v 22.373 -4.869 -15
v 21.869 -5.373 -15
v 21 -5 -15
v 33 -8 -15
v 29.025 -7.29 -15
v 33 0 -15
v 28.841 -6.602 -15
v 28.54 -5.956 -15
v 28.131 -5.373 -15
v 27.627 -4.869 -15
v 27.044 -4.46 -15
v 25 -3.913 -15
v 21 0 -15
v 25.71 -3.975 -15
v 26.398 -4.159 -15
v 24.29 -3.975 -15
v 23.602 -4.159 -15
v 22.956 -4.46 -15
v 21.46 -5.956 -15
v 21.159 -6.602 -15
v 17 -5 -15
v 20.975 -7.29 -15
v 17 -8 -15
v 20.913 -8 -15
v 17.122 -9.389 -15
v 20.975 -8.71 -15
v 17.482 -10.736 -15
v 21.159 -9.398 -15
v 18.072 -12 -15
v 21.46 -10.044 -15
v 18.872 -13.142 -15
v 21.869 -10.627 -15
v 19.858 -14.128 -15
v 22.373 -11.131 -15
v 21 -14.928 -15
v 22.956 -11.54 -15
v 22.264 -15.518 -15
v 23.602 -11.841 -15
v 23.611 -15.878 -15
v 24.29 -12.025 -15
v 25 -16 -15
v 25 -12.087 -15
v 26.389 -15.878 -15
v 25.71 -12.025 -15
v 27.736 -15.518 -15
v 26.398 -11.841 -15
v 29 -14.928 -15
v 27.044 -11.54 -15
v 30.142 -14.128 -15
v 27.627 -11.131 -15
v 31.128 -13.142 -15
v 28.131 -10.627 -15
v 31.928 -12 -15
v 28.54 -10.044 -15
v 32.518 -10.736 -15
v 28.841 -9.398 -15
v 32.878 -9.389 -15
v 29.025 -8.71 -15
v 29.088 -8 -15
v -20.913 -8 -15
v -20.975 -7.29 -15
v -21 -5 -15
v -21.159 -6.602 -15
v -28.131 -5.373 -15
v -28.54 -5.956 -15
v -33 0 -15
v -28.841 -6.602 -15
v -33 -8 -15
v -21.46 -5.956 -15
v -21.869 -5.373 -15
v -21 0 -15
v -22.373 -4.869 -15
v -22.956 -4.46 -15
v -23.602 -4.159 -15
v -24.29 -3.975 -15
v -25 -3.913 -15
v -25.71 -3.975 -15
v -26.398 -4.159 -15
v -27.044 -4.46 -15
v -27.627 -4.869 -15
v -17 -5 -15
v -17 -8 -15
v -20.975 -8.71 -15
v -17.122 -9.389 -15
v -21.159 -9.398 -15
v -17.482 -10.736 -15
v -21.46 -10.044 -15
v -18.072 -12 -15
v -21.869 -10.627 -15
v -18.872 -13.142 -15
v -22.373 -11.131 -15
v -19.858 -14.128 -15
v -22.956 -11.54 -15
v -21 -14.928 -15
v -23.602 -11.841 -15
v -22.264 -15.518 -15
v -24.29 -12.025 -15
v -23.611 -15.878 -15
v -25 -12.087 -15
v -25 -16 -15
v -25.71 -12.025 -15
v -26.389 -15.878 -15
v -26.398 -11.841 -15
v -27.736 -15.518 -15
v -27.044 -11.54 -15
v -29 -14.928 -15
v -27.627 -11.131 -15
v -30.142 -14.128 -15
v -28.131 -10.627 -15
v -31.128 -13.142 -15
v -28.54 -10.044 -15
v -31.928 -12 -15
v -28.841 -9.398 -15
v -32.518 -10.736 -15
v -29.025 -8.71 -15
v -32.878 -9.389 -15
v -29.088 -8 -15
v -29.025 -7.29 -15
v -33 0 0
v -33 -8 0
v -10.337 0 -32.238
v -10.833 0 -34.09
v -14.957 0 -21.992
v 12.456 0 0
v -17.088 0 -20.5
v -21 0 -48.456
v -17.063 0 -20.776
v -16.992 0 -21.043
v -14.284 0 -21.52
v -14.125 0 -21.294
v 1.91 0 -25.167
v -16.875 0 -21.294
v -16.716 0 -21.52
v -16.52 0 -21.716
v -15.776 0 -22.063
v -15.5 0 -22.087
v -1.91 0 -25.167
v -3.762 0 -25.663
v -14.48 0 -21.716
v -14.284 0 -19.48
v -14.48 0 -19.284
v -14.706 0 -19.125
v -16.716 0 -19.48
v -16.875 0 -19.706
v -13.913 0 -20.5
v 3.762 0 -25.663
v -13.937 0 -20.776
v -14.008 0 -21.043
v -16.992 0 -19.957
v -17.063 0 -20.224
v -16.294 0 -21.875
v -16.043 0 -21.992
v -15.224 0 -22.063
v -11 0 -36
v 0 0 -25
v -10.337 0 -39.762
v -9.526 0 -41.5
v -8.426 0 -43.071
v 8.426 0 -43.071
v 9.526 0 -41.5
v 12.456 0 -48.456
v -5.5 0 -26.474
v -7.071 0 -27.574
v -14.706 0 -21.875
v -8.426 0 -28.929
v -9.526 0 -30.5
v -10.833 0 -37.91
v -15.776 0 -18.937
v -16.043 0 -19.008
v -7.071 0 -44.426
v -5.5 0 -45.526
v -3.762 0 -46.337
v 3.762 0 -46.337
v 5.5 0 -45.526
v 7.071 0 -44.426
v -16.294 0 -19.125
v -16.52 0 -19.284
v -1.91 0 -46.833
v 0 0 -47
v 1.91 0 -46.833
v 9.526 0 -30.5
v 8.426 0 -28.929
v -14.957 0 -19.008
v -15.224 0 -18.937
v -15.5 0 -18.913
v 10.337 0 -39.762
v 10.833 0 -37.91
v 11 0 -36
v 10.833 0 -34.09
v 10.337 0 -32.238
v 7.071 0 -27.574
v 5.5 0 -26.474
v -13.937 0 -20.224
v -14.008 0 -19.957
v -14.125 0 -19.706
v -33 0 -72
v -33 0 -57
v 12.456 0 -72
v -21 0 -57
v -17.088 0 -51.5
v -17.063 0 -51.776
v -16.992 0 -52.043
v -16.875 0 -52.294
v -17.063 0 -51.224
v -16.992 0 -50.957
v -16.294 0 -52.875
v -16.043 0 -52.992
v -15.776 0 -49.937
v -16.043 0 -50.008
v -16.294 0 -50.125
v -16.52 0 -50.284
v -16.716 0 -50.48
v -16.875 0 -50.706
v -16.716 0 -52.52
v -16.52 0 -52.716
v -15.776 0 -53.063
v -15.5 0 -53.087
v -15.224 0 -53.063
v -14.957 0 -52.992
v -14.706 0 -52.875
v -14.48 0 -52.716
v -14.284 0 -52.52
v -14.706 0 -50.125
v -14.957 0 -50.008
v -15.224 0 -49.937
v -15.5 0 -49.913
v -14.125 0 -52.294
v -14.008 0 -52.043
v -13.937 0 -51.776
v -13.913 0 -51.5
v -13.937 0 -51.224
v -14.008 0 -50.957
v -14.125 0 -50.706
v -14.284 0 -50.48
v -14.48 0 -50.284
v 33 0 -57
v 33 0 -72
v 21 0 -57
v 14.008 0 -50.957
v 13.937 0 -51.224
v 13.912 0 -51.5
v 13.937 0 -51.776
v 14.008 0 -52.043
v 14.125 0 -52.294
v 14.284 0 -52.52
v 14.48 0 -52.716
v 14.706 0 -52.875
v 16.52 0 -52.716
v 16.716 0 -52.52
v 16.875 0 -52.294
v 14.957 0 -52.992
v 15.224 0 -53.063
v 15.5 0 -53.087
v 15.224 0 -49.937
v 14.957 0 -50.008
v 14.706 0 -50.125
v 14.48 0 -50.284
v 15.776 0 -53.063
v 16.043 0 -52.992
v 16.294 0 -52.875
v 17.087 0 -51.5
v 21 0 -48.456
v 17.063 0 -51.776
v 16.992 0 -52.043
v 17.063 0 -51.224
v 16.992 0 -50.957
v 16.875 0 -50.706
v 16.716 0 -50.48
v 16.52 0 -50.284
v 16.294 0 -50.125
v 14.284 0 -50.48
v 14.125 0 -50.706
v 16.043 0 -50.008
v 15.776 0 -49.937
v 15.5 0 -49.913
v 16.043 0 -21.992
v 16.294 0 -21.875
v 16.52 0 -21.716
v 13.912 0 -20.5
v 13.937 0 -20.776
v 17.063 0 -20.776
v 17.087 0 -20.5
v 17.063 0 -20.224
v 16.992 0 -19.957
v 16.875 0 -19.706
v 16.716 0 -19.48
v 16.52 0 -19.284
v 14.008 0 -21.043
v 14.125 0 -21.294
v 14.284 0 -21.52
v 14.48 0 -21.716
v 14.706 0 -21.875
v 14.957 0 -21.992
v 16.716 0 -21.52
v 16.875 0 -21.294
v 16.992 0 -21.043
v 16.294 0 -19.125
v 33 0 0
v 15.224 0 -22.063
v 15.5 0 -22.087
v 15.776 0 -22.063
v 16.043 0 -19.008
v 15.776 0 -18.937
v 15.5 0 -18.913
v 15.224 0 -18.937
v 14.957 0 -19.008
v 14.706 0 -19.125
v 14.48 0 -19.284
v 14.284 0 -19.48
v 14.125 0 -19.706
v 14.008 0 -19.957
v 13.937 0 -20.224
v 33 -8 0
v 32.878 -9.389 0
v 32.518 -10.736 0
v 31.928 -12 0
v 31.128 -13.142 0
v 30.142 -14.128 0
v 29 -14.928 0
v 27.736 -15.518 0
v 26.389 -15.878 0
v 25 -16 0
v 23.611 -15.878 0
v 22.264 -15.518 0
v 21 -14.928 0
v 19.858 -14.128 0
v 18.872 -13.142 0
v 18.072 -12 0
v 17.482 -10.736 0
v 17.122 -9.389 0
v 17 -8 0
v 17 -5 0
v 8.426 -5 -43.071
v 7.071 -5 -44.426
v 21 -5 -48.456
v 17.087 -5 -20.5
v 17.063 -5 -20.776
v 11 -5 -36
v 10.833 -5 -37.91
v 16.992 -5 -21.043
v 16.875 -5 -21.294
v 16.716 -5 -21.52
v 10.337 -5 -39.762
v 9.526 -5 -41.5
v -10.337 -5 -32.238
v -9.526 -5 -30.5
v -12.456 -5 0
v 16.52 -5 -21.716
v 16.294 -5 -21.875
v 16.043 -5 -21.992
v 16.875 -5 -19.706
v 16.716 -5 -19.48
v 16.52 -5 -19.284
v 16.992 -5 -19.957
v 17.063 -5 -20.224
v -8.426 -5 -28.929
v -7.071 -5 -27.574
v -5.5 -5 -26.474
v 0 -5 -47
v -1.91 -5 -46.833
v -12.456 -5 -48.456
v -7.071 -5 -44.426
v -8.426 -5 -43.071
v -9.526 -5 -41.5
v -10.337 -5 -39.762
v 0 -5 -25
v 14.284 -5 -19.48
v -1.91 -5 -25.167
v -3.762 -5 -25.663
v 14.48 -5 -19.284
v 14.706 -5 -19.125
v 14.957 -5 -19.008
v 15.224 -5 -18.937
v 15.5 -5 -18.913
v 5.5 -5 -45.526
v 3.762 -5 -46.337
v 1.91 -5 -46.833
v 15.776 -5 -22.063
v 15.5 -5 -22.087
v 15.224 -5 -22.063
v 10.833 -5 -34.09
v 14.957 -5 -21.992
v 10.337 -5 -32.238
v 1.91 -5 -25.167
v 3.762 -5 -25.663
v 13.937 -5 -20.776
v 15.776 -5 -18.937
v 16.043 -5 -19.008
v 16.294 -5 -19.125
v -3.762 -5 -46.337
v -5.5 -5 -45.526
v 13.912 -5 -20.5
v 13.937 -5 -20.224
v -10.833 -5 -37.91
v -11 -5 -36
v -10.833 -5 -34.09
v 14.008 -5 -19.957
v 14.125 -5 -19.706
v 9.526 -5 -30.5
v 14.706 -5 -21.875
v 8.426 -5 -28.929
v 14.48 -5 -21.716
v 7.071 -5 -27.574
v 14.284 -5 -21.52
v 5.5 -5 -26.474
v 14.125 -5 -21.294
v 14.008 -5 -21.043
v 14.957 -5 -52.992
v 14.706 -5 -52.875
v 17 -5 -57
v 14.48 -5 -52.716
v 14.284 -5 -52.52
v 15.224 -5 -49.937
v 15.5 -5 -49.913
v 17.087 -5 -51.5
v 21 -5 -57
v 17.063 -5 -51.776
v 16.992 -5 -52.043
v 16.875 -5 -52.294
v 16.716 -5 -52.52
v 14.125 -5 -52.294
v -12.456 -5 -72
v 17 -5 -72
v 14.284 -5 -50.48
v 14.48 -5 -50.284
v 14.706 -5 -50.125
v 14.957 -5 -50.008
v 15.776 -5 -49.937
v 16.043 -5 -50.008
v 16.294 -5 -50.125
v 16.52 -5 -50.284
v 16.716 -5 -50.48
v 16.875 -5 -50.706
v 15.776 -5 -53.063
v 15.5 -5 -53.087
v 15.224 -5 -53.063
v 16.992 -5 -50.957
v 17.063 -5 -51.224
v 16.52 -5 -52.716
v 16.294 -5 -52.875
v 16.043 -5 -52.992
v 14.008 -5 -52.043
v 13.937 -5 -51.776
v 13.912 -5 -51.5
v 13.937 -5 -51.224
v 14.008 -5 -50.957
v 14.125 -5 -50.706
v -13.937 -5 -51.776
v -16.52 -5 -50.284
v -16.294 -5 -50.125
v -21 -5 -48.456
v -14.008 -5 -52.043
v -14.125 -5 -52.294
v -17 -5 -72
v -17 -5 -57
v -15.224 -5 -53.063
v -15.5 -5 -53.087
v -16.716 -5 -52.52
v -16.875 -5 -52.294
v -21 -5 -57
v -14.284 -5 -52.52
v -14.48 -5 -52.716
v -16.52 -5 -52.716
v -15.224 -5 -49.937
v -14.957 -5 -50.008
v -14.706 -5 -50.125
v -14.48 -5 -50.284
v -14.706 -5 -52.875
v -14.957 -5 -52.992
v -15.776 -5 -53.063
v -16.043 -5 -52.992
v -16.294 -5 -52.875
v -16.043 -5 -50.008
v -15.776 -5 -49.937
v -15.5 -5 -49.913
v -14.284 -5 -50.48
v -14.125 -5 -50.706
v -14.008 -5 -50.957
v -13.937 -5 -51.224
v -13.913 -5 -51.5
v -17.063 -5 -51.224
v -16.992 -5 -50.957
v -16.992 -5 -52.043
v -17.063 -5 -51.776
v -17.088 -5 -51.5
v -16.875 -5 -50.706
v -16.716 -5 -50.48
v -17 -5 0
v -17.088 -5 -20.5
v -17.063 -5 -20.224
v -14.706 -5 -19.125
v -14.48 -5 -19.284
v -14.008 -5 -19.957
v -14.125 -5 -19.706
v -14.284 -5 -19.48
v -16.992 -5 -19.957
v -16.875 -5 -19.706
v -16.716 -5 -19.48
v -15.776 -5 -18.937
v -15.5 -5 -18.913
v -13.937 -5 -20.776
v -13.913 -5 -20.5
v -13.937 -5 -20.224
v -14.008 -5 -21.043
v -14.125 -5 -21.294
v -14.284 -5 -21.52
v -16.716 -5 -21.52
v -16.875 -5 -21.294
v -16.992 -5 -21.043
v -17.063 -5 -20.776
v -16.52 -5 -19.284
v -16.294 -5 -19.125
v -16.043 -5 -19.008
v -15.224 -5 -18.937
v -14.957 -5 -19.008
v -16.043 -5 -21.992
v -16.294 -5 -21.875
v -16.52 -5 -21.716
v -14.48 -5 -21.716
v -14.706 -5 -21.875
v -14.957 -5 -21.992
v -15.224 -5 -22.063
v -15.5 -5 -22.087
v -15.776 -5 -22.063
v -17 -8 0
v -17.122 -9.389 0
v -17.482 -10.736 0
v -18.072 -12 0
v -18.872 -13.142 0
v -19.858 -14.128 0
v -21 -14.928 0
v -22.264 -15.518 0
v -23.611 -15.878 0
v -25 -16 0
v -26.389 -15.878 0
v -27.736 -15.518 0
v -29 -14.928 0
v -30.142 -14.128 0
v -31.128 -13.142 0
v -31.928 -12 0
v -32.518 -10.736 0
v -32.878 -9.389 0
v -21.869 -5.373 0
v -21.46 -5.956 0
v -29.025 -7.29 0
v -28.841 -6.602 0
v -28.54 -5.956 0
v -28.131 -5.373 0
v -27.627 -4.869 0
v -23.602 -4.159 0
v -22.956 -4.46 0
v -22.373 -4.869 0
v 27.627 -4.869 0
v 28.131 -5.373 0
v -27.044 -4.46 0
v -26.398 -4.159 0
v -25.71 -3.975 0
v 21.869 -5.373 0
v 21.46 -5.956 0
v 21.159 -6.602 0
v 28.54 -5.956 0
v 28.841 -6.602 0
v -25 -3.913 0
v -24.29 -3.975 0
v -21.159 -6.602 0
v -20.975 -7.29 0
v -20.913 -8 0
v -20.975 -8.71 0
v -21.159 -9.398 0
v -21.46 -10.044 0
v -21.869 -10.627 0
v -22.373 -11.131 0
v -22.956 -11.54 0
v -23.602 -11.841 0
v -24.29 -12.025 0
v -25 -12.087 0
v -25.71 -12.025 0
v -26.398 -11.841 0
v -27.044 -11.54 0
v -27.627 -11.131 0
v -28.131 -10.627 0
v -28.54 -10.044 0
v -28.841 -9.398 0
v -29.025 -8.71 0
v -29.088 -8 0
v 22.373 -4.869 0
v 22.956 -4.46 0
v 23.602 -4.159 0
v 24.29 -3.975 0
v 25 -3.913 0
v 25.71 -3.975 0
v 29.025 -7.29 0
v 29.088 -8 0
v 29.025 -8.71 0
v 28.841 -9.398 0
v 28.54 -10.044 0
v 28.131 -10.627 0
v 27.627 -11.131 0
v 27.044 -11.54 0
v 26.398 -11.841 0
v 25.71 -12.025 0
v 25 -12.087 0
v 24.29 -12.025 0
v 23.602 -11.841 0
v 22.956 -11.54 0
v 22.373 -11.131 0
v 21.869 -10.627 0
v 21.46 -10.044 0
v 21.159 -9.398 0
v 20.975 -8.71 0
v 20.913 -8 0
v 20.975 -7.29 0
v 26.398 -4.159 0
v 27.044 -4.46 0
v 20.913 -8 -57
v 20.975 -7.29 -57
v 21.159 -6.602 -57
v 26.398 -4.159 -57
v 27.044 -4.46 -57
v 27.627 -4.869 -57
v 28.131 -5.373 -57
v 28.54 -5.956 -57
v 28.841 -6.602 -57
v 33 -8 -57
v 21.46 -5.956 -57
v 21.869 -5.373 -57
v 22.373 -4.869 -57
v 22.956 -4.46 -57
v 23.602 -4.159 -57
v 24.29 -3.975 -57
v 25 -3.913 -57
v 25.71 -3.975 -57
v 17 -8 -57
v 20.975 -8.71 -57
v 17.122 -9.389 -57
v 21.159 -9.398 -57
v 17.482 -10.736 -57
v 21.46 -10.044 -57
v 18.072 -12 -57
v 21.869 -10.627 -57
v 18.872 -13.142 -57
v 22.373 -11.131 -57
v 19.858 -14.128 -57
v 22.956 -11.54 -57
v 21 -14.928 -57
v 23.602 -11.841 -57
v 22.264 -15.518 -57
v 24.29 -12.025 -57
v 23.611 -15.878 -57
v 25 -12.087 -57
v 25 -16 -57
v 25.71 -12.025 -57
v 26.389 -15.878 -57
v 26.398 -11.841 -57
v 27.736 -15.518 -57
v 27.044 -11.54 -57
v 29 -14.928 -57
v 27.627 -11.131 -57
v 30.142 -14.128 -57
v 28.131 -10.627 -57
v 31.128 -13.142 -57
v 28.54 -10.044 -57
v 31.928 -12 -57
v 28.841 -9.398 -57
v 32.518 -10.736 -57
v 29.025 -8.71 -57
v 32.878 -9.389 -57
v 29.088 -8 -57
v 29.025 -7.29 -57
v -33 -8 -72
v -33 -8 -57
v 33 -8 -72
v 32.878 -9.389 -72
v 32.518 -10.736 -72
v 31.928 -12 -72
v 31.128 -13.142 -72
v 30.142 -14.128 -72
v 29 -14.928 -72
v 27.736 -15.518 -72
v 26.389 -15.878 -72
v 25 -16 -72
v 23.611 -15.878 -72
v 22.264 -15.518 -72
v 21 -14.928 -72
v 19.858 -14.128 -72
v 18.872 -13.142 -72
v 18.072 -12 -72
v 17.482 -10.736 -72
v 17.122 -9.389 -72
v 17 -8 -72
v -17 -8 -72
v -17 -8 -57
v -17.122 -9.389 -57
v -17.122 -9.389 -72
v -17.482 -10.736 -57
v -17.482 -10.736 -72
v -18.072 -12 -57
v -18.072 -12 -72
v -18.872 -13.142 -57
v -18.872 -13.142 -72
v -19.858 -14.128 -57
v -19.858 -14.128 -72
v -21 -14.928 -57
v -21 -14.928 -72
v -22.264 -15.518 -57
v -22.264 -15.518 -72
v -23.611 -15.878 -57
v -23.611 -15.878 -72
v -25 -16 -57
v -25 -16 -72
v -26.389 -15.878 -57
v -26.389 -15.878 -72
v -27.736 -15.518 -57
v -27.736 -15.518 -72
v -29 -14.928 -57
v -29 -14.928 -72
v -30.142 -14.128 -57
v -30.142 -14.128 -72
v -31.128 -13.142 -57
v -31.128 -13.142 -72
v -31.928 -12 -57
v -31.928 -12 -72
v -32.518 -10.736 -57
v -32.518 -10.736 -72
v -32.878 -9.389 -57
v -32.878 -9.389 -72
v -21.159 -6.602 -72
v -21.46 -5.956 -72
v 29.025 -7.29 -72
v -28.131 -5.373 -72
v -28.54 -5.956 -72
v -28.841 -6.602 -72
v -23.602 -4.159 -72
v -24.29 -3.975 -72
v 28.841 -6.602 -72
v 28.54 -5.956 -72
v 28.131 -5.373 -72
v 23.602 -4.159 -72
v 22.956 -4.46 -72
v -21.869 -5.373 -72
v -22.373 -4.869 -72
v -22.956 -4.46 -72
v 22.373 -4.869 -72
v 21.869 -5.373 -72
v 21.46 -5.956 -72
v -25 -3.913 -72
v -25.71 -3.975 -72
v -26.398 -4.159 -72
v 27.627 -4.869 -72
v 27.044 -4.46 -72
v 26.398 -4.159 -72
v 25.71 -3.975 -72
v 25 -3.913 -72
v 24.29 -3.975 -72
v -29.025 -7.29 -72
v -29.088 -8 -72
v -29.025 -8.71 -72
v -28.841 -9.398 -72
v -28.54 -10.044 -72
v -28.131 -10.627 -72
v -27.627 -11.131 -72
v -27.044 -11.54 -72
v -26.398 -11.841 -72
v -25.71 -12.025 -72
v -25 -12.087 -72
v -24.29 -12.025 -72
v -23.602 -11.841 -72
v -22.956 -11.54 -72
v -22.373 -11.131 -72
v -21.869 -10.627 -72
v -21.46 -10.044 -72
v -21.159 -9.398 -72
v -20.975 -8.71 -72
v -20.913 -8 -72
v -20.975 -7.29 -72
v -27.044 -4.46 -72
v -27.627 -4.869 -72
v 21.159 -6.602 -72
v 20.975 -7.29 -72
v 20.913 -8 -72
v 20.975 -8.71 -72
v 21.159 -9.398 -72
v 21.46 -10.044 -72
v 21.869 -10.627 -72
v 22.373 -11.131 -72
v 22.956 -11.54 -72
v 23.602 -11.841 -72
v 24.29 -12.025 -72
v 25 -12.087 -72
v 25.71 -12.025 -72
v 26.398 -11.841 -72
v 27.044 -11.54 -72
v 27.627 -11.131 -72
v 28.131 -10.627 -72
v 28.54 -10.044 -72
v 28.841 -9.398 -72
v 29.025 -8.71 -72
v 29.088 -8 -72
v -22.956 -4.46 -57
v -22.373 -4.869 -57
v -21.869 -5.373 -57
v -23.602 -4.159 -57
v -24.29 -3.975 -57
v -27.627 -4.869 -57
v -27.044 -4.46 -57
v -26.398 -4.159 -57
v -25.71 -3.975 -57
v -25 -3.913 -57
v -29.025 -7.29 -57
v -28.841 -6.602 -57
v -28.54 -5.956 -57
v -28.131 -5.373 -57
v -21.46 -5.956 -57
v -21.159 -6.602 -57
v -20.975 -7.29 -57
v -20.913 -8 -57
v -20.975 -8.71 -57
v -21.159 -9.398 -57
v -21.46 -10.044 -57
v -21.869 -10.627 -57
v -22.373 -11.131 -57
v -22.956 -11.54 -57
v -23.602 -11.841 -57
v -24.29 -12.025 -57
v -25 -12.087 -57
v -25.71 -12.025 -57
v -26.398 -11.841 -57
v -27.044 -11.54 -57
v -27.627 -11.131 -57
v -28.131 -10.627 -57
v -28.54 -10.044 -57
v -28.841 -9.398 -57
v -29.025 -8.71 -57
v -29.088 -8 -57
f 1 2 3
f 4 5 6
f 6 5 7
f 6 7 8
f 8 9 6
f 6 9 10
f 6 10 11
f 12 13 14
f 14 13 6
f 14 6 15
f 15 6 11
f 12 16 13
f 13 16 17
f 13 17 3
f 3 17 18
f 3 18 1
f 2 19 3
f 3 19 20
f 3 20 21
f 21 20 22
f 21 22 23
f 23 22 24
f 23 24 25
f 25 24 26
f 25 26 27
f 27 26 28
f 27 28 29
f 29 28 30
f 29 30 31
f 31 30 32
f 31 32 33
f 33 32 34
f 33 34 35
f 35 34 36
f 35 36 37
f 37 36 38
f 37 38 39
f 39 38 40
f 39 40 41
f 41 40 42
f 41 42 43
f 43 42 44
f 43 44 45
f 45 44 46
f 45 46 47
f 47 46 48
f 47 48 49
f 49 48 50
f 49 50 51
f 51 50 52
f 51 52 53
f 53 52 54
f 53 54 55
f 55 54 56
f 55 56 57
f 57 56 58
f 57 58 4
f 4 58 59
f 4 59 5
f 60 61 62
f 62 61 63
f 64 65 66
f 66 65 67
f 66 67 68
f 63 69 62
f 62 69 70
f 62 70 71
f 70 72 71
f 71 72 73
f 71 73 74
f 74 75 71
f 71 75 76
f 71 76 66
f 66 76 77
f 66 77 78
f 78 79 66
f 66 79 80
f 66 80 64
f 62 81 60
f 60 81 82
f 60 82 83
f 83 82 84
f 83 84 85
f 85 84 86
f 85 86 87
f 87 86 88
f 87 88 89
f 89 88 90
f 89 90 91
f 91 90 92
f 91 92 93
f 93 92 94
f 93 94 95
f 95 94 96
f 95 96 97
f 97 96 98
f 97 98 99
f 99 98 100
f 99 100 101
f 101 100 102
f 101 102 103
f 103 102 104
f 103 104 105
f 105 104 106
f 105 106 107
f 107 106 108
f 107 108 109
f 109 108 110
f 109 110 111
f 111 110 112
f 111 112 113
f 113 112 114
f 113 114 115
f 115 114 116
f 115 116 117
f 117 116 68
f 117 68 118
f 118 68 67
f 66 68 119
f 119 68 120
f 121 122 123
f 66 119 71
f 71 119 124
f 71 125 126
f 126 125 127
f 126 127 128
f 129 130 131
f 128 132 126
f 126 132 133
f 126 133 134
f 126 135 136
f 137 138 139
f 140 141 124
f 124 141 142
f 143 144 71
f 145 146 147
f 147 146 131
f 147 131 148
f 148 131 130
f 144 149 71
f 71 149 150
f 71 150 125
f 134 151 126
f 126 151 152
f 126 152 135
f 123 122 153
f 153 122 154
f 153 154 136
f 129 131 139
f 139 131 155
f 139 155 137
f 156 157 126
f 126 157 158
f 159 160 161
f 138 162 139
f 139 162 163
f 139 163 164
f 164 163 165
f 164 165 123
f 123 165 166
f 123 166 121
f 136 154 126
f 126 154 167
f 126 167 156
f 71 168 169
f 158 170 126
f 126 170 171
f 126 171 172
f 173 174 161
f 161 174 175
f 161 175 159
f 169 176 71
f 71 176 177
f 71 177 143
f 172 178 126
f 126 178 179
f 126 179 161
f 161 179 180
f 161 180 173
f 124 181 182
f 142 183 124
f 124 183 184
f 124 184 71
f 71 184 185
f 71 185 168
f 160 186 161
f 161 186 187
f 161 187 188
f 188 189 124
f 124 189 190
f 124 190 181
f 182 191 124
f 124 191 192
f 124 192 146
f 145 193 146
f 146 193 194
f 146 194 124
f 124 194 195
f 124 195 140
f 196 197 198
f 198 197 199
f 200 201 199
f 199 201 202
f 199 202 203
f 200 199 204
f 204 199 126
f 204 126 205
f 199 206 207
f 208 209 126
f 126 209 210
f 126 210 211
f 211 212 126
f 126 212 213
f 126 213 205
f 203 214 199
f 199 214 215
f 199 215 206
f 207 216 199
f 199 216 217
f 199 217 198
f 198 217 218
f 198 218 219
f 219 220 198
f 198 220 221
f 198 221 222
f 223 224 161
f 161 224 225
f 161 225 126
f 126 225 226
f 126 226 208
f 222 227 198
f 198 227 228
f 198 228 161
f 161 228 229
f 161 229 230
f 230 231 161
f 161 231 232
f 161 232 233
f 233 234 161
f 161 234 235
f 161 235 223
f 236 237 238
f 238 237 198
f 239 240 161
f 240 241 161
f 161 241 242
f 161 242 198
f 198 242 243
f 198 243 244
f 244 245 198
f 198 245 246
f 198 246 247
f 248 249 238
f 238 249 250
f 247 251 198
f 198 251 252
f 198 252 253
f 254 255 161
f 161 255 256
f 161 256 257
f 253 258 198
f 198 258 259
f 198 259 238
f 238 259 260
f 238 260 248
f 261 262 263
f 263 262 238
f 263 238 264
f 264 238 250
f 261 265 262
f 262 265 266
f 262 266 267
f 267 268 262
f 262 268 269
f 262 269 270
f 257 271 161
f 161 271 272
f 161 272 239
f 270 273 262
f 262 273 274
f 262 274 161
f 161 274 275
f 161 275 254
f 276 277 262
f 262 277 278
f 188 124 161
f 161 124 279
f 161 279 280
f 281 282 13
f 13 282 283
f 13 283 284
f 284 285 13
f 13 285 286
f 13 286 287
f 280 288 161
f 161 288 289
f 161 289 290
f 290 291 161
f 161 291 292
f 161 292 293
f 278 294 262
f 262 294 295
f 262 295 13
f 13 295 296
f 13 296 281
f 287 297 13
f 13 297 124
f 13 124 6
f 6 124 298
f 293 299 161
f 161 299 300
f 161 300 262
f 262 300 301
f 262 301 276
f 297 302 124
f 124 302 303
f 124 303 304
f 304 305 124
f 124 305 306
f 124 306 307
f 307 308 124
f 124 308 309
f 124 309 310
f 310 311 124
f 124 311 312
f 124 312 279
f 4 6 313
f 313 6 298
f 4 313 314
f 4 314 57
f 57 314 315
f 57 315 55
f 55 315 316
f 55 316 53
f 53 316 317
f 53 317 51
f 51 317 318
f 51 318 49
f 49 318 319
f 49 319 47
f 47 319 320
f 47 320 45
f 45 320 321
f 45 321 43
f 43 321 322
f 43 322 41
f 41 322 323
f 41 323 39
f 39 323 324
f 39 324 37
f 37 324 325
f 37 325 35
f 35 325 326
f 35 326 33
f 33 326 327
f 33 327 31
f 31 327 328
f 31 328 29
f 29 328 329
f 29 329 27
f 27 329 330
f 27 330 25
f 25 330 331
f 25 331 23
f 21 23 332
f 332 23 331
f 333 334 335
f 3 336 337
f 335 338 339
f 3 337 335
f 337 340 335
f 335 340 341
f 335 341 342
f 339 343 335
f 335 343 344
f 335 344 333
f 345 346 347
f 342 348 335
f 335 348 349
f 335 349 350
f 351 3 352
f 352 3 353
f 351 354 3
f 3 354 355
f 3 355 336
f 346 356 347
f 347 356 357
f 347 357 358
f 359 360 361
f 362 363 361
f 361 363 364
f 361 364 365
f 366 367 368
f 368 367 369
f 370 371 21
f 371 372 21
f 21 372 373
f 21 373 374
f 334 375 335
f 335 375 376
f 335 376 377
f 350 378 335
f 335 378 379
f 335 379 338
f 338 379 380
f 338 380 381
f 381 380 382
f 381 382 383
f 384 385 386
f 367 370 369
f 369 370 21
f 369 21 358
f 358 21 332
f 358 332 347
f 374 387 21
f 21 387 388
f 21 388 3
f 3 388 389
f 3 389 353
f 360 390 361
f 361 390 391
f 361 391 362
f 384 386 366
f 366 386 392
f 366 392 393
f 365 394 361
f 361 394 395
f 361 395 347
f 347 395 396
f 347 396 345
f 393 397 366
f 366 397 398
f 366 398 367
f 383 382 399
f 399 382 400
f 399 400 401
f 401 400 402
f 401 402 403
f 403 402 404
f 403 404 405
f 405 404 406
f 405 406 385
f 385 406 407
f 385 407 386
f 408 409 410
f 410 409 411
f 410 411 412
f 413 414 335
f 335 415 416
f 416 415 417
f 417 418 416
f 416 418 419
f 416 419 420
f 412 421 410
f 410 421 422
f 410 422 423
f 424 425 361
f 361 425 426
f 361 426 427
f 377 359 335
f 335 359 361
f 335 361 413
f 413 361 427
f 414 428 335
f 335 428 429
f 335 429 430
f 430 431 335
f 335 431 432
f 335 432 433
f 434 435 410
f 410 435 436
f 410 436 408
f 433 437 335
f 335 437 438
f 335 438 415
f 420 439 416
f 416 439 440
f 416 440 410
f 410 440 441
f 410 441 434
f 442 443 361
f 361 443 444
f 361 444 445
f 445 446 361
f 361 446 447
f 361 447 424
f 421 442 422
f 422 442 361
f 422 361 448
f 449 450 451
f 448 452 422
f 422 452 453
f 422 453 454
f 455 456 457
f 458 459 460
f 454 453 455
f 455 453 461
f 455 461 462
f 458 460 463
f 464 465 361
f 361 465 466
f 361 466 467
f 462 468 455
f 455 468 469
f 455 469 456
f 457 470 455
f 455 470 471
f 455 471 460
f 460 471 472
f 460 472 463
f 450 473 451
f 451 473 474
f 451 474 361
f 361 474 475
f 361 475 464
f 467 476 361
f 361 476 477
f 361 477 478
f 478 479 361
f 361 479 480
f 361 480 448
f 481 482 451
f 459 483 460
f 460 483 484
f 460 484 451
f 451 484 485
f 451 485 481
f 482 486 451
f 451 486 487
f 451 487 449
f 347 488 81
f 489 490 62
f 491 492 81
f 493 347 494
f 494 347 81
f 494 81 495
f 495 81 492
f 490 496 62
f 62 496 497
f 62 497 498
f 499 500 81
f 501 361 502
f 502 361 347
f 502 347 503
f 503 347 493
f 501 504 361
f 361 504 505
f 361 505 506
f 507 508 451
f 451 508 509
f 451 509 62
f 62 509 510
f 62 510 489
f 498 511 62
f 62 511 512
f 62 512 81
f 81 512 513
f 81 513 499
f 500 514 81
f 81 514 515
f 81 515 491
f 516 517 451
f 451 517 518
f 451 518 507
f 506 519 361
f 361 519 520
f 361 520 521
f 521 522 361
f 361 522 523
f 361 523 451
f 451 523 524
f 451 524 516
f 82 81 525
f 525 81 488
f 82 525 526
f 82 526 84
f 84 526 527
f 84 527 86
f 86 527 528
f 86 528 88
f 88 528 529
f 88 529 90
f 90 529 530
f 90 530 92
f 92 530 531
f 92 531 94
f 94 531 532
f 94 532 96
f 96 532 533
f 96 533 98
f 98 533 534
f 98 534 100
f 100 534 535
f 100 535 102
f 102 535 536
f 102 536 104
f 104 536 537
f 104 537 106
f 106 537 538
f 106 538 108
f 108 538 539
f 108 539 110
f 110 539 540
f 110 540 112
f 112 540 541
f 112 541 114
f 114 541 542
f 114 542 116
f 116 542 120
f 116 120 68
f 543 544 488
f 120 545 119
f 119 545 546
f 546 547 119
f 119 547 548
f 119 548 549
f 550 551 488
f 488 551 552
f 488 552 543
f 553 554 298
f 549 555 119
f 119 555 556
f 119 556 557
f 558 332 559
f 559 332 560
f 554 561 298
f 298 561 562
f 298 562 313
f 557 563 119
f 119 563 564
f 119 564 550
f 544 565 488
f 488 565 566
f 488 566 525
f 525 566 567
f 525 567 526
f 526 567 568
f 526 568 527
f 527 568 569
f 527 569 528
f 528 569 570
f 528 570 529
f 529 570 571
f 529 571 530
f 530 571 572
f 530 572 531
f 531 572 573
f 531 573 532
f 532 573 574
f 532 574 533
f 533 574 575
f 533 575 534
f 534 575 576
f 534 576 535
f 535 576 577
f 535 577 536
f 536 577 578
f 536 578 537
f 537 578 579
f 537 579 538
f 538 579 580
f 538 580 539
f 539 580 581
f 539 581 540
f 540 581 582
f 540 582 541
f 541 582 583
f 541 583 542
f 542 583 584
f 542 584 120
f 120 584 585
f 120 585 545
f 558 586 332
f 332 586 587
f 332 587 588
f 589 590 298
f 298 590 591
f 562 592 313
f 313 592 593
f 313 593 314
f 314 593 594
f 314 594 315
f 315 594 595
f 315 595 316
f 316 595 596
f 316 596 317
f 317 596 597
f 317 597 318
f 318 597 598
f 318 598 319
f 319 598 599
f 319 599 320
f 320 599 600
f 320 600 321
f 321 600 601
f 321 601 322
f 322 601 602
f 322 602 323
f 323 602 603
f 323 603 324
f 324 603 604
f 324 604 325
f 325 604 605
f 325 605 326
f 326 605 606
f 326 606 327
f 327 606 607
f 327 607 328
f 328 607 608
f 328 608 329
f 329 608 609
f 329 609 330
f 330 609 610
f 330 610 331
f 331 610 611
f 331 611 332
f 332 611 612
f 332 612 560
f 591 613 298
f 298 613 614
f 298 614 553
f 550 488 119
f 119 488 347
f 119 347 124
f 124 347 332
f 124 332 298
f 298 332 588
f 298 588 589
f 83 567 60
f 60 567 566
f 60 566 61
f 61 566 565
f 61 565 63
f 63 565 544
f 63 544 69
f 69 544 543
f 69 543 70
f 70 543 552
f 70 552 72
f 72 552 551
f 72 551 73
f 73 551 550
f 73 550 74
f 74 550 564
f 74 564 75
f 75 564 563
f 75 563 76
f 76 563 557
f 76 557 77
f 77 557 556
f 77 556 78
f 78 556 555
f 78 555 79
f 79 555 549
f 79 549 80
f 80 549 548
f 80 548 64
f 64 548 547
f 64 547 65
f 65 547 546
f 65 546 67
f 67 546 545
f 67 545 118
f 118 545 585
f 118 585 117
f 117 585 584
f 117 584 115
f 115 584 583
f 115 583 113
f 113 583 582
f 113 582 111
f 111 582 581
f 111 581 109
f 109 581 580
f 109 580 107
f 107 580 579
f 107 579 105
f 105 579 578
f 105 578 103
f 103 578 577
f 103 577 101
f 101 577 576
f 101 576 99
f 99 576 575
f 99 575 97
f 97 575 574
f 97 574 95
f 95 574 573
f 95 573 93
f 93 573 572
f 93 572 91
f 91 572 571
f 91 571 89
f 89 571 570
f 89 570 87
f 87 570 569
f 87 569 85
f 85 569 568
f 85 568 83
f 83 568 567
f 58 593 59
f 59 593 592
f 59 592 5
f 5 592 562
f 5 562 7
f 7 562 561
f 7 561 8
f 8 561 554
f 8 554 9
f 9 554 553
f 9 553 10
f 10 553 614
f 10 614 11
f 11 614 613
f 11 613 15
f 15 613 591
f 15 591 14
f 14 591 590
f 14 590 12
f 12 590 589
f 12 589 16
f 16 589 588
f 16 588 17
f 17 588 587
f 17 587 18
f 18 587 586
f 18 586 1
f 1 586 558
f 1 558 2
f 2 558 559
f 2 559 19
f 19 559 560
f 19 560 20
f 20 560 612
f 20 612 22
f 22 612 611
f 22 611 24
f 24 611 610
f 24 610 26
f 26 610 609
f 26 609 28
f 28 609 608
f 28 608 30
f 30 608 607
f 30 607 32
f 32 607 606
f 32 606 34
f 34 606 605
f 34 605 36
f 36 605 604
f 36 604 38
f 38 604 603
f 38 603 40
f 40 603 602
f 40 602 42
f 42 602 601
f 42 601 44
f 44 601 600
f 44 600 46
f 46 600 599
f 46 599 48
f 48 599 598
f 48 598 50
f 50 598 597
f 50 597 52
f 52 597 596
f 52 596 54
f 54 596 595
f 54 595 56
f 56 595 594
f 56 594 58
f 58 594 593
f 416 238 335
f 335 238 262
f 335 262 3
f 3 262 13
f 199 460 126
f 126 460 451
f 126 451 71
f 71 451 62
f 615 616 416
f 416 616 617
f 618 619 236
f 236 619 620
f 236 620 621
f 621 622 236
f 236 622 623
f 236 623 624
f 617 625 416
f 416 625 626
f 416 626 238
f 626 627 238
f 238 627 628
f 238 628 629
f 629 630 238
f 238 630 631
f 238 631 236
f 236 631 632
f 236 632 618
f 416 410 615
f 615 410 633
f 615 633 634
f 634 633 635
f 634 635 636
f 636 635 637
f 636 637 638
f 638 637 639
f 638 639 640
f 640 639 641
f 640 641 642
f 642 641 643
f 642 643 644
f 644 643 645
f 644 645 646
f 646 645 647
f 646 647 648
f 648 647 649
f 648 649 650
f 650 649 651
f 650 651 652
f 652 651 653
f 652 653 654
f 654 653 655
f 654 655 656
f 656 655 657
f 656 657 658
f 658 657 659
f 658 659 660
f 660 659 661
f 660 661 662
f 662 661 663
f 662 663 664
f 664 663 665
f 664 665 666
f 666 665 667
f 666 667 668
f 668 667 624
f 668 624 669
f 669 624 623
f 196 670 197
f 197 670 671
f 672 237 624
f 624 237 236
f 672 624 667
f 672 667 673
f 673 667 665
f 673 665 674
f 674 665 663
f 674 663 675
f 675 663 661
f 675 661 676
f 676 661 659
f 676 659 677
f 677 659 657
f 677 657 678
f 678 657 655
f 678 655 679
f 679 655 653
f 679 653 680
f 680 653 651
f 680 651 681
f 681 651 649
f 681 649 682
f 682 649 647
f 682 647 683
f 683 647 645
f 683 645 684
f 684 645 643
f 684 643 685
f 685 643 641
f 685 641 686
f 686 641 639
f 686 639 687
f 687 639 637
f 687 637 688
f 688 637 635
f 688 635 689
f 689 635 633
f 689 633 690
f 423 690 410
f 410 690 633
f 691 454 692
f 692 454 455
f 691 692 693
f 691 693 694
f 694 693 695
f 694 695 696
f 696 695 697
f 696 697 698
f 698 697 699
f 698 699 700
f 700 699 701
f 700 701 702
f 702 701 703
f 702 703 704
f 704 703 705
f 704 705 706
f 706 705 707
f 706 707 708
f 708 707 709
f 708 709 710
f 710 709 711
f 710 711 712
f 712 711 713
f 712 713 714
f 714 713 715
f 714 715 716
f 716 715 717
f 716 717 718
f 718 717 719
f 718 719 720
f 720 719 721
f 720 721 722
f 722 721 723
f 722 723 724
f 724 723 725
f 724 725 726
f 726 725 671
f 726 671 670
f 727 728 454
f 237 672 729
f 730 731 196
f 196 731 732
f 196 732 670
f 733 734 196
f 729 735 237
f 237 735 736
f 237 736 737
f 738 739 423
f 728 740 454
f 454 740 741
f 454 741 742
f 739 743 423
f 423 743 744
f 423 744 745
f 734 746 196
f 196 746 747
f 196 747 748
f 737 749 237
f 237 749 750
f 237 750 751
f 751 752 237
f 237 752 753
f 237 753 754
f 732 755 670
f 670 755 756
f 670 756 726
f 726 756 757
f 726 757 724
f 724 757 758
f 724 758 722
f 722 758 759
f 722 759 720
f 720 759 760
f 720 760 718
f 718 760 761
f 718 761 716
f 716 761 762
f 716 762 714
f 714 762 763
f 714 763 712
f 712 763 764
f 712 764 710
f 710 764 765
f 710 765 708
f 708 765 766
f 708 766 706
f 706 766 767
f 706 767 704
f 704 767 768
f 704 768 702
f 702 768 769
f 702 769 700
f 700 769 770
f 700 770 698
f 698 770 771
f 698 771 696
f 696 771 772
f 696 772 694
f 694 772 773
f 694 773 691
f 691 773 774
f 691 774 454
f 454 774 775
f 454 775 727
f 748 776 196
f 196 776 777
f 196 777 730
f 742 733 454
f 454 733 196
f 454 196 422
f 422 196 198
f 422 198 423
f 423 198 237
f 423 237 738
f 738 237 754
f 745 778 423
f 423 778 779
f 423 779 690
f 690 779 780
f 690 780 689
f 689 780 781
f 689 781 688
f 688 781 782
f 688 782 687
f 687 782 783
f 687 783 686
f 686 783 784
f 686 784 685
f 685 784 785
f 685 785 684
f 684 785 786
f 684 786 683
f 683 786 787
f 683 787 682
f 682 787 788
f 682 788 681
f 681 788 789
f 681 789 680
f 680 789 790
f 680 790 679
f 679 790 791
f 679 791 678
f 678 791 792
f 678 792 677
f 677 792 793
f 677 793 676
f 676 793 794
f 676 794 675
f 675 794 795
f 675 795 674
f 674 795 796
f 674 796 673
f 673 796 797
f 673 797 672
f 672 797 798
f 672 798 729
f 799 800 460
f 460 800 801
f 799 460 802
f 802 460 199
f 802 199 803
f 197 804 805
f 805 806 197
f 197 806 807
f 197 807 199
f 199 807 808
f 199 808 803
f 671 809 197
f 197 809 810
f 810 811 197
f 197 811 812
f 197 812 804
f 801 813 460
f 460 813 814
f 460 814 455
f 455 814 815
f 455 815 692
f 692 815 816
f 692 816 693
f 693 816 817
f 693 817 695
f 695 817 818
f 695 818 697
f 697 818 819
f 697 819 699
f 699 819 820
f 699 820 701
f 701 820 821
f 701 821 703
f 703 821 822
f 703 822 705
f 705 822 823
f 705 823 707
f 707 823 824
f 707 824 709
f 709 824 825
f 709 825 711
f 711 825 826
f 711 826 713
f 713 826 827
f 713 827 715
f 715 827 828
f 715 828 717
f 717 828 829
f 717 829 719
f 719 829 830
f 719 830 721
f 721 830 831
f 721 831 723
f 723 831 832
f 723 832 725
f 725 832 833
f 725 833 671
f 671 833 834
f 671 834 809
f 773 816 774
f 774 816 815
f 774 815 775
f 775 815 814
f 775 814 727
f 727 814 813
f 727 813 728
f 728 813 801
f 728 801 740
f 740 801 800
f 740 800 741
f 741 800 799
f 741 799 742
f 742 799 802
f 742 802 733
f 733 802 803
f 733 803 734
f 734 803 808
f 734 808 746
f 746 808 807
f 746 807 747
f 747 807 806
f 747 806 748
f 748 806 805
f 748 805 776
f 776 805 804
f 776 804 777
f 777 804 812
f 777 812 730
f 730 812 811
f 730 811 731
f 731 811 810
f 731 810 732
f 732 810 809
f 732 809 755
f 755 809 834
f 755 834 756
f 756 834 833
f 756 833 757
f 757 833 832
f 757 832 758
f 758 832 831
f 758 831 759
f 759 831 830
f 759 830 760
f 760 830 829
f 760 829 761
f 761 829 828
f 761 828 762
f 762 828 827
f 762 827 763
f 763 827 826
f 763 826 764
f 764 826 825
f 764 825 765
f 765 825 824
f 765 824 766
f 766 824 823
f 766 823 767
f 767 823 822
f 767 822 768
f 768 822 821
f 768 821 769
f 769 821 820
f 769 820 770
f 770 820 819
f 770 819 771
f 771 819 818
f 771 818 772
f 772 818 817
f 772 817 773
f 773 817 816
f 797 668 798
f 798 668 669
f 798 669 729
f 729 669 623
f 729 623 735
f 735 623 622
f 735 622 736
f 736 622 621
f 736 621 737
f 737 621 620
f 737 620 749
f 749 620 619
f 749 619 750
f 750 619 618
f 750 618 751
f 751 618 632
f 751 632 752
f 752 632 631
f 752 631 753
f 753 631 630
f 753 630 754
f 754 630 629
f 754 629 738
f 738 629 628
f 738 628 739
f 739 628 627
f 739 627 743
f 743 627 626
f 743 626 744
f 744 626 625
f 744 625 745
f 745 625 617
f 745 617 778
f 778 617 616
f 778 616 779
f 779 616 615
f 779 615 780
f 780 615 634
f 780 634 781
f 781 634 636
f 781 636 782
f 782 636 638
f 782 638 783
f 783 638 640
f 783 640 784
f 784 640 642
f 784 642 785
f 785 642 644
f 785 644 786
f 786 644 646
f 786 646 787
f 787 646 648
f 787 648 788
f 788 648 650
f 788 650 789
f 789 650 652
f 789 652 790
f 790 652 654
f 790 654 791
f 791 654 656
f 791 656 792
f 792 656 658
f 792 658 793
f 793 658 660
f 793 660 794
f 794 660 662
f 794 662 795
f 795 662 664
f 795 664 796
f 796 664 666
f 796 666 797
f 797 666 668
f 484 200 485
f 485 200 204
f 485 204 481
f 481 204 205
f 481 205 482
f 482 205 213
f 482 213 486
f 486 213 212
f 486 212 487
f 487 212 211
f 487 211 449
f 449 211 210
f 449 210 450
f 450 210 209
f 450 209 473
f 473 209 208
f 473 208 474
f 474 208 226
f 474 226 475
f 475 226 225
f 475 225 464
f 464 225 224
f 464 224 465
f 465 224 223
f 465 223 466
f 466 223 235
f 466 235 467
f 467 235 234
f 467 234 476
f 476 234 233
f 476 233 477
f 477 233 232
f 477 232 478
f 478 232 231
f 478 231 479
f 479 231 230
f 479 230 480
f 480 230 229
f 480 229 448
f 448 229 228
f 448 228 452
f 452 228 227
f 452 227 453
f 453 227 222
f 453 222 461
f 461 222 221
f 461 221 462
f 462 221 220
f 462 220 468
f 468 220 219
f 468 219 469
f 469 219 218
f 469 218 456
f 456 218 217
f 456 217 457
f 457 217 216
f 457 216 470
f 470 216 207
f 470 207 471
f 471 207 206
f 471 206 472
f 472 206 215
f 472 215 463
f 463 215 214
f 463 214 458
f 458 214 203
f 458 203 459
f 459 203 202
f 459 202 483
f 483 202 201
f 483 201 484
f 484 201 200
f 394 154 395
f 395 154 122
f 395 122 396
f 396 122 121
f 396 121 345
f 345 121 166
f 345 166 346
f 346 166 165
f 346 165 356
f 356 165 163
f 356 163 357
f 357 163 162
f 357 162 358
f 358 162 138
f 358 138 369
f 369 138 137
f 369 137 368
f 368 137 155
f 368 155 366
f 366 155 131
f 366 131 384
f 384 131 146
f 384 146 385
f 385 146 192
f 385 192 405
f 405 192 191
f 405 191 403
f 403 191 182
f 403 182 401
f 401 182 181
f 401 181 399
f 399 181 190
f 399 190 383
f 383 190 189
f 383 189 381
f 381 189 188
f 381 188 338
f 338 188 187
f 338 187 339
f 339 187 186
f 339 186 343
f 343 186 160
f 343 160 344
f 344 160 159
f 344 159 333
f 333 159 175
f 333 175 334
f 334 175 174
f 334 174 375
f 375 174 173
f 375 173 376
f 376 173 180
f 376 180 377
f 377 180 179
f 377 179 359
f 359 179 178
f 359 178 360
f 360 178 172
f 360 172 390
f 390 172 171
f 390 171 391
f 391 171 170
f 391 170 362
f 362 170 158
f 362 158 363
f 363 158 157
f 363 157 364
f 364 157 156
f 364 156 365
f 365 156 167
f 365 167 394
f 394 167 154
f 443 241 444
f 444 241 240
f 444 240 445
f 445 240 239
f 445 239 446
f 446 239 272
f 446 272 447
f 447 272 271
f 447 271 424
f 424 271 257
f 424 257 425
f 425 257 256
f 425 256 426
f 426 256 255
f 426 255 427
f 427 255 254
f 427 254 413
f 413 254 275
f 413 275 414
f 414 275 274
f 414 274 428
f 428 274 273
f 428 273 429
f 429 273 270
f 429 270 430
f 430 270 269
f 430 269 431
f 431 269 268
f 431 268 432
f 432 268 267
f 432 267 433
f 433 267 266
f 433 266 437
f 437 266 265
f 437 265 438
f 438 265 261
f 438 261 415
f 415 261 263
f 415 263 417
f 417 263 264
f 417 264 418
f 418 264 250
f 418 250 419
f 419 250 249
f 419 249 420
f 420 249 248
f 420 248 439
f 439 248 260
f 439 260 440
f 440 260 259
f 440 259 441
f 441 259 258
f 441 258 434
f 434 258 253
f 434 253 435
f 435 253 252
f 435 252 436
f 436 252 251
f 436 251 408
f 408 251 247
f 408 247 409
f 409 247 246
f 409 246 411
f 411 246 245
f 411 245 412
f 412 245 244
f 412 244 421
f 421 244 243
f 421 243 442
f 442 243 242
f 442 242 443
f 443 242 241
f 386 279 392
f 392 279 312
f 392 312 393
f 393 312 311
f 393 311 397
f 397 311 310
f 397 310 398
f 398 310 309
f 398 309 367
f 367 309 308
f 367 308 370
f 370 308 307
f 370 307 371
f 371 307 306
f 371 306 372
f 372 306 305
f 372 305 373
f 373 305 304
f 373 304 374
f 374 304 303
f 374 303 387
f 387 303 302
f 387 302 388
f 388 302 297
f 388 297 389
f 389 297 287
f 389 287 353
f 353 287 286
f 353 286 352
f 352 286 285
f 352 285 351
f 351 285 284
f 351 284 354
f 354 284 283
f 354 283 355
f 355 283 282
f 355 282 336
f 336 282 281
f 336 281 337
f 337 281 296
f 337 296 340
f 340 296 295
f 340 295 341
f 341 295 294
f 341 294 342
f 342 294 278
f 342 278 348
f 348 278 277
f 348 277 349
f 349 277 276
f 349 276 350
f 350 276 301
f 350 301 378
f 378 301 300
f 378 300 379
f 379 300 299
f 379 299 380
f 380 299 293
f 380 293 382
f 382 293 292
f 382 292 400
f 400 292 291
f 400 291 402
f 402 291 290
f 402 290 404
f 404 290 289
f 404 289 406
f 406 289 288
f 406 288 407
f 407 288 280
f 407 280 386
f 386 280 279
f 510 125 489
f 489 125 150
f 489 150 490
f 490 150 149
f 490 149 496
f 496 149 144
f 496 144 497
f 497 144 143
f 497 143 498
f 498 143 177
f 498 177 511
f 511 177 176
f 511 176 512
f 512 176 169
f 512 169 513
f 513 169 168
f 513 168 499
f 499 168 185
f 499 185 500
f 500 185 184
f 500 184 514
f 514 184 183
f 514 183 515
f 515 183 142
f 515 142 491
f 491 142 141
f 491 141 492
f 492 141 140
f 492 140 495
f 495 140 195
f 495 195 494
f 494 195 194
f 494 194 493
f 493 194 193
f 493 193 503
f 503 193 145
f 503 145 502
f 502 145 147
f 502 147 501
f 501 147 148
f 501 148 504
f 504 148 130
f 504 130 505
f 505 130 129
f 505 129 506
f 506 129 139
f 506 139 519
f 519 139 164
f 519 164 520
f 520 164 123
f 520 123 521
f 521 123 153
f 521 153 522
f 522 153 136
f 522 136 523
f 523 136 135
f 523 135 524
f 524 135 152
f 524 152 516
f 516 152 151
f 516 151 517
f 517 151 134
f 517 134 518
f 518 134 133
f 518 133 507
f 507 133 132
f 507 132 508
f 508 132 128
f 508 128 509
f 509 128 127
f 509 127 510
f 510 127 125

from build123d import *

# Parameters (mm, degrees)
SKETCH1_R           = 4
BOSS_EXTRUDE1_DEPTH = 15
SKETCH2_W           = 42
SKETCH2_H           = 5
BOSS_EXTRUDE2_DEPTH = 42
BOSS_EXTRUDE3_START = -57
SKETCH1_2_R         = 4
BOSS_EXTRUDE3_DEPTH = 15
SKETCH3_R           = 1.5
SKETCH3_R_2         = 11
CUT_EXTRUDE1_DEPTH  = 81.802227692


with BuildPart() as part:
    # Sketch1 → Boss-Extrude1 (new body)
    with BuildSketch(Plane.XY):
        with BuildLine():
            Line((33, 0), (-33, 0))
            Line((-33, 0), (-33, -8))
            ThreePointArc((-33, -8), (-25, -16), (-17, -8))
            Line((-17, -8), (-17, -5))
            Line((-17, -5), (17, -5))
            Line((17, -5), (17, -8))
            ThreePointArc((17, -8), (25, -16), (33, -8))
            Line((33, -8), (33, 0))
        make_face()
        with Locations((-25, -8)):
            Circle(SKETCH1_R, mode=Mode.SUBTRACT)
        with Locations(Location((25, -8, 0), (0, 0, 180))):
            Circle(SKETCH1_R, mode=Mode.SUBTRACT)
    extrude(amount=-BOSS_EXTRUDE1_DEPTH)

    # Sketch2 → Boss-Extrude2 (add)
    with BuildSketch(Plane(origin=(0, 0, -15), x_dir=(-1, 0, 0), z_dir=(0, 0, -1))):
        with Locations((0, -2.5)):
            Rectangle(SKETCH2_W, SKETCH2_H)
    extrude(amount=BOSS_EXTRUDE2_DEPTH)

    # Sketch1<2> → Boss-Extrude3 (add)
    with BuildSketch(Plane.XY.offset(BOSS_EXTRUDE3_START)):
        with BuildLine():
            Line((33, 0), (-33, 0))
            Line((-33, 0), (-33, -8))
            ThreePointArc((-33, -8), (-25, -16), (-17, -8))
            Line((-17, -8), (-17, -5))
            Line((-17, -5), (17, -5))
            Line((17, -5), (17, -8))
            ThreePointArc((17, -8), (25, -16), (33, -8))
            Line((33, -8), (33, 0))
        make_face()
        with Locations((-25, -8)):
            Circle(SKETCH1_2_R, mode=Mode.SUBTRACT)
        with Locations(Location((25, -8, 0), (0, 0, 180))):
            Circle(SKETCH1_2_R, mode=Mode.SUBTRACT)
    extrude(amount=-BOSS_EXTRUDE3_DEPTH)

    # Sketch3 → Cut-Extrude1 (cut, through all)
    with BuildSketch(Plane(origin=(0, 0, 0), x_dir=(1, 0, 0), z_dir=(0, 1, 0))):
        with Locations(Location((-15.5, 51.5, 0), (0, 0, 180))):
            Circle(SKETCH3_R)
        with Locations(Location((0, 36, 0), (0, 0, 180))):
            Circle(SKETCH3_R_2)
        with Locations(Location((15.5, 51.5, 0), (0, 0, 180))):
            Circle(SKETCH3_R)
        with Locations(Location((15.5, 20.5, 0), (0, 0, 180))):
            Circle(SKETCH3_R)
        with Locations(Location((-15.5, 20.5, 0), (0, 0, 180))):
            Circle(SKETCH3_R)
    extrude(amount=-CUT_EXTRUDE1_DEPTH, mode=Mode.SUBTRACT)


solid = part.part
